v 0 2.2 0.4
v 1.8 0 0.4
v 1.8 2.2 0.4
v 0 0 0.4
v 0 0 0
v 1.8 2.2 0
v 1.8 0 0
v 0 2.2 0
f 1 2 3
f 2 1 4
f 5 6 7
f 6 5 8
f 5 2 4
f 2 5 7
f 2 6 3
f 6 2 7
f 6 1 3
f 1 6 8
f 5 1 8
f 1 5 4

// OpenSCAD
/* Warning, this is a very basic generator with a lot of approximation 
input data : [XDFN, D5B, 1.8x2.2x0.4mm, 8, , A, C04-21186A]
generated by com.zoubworld.electronics.cad.model3d.Basic
Date : Sun Feb 15 10:50:49 CET 2026
*/

//body
color("black")
translate([0,0,0])
cube([1.8,2.2,0.4], center=false);
